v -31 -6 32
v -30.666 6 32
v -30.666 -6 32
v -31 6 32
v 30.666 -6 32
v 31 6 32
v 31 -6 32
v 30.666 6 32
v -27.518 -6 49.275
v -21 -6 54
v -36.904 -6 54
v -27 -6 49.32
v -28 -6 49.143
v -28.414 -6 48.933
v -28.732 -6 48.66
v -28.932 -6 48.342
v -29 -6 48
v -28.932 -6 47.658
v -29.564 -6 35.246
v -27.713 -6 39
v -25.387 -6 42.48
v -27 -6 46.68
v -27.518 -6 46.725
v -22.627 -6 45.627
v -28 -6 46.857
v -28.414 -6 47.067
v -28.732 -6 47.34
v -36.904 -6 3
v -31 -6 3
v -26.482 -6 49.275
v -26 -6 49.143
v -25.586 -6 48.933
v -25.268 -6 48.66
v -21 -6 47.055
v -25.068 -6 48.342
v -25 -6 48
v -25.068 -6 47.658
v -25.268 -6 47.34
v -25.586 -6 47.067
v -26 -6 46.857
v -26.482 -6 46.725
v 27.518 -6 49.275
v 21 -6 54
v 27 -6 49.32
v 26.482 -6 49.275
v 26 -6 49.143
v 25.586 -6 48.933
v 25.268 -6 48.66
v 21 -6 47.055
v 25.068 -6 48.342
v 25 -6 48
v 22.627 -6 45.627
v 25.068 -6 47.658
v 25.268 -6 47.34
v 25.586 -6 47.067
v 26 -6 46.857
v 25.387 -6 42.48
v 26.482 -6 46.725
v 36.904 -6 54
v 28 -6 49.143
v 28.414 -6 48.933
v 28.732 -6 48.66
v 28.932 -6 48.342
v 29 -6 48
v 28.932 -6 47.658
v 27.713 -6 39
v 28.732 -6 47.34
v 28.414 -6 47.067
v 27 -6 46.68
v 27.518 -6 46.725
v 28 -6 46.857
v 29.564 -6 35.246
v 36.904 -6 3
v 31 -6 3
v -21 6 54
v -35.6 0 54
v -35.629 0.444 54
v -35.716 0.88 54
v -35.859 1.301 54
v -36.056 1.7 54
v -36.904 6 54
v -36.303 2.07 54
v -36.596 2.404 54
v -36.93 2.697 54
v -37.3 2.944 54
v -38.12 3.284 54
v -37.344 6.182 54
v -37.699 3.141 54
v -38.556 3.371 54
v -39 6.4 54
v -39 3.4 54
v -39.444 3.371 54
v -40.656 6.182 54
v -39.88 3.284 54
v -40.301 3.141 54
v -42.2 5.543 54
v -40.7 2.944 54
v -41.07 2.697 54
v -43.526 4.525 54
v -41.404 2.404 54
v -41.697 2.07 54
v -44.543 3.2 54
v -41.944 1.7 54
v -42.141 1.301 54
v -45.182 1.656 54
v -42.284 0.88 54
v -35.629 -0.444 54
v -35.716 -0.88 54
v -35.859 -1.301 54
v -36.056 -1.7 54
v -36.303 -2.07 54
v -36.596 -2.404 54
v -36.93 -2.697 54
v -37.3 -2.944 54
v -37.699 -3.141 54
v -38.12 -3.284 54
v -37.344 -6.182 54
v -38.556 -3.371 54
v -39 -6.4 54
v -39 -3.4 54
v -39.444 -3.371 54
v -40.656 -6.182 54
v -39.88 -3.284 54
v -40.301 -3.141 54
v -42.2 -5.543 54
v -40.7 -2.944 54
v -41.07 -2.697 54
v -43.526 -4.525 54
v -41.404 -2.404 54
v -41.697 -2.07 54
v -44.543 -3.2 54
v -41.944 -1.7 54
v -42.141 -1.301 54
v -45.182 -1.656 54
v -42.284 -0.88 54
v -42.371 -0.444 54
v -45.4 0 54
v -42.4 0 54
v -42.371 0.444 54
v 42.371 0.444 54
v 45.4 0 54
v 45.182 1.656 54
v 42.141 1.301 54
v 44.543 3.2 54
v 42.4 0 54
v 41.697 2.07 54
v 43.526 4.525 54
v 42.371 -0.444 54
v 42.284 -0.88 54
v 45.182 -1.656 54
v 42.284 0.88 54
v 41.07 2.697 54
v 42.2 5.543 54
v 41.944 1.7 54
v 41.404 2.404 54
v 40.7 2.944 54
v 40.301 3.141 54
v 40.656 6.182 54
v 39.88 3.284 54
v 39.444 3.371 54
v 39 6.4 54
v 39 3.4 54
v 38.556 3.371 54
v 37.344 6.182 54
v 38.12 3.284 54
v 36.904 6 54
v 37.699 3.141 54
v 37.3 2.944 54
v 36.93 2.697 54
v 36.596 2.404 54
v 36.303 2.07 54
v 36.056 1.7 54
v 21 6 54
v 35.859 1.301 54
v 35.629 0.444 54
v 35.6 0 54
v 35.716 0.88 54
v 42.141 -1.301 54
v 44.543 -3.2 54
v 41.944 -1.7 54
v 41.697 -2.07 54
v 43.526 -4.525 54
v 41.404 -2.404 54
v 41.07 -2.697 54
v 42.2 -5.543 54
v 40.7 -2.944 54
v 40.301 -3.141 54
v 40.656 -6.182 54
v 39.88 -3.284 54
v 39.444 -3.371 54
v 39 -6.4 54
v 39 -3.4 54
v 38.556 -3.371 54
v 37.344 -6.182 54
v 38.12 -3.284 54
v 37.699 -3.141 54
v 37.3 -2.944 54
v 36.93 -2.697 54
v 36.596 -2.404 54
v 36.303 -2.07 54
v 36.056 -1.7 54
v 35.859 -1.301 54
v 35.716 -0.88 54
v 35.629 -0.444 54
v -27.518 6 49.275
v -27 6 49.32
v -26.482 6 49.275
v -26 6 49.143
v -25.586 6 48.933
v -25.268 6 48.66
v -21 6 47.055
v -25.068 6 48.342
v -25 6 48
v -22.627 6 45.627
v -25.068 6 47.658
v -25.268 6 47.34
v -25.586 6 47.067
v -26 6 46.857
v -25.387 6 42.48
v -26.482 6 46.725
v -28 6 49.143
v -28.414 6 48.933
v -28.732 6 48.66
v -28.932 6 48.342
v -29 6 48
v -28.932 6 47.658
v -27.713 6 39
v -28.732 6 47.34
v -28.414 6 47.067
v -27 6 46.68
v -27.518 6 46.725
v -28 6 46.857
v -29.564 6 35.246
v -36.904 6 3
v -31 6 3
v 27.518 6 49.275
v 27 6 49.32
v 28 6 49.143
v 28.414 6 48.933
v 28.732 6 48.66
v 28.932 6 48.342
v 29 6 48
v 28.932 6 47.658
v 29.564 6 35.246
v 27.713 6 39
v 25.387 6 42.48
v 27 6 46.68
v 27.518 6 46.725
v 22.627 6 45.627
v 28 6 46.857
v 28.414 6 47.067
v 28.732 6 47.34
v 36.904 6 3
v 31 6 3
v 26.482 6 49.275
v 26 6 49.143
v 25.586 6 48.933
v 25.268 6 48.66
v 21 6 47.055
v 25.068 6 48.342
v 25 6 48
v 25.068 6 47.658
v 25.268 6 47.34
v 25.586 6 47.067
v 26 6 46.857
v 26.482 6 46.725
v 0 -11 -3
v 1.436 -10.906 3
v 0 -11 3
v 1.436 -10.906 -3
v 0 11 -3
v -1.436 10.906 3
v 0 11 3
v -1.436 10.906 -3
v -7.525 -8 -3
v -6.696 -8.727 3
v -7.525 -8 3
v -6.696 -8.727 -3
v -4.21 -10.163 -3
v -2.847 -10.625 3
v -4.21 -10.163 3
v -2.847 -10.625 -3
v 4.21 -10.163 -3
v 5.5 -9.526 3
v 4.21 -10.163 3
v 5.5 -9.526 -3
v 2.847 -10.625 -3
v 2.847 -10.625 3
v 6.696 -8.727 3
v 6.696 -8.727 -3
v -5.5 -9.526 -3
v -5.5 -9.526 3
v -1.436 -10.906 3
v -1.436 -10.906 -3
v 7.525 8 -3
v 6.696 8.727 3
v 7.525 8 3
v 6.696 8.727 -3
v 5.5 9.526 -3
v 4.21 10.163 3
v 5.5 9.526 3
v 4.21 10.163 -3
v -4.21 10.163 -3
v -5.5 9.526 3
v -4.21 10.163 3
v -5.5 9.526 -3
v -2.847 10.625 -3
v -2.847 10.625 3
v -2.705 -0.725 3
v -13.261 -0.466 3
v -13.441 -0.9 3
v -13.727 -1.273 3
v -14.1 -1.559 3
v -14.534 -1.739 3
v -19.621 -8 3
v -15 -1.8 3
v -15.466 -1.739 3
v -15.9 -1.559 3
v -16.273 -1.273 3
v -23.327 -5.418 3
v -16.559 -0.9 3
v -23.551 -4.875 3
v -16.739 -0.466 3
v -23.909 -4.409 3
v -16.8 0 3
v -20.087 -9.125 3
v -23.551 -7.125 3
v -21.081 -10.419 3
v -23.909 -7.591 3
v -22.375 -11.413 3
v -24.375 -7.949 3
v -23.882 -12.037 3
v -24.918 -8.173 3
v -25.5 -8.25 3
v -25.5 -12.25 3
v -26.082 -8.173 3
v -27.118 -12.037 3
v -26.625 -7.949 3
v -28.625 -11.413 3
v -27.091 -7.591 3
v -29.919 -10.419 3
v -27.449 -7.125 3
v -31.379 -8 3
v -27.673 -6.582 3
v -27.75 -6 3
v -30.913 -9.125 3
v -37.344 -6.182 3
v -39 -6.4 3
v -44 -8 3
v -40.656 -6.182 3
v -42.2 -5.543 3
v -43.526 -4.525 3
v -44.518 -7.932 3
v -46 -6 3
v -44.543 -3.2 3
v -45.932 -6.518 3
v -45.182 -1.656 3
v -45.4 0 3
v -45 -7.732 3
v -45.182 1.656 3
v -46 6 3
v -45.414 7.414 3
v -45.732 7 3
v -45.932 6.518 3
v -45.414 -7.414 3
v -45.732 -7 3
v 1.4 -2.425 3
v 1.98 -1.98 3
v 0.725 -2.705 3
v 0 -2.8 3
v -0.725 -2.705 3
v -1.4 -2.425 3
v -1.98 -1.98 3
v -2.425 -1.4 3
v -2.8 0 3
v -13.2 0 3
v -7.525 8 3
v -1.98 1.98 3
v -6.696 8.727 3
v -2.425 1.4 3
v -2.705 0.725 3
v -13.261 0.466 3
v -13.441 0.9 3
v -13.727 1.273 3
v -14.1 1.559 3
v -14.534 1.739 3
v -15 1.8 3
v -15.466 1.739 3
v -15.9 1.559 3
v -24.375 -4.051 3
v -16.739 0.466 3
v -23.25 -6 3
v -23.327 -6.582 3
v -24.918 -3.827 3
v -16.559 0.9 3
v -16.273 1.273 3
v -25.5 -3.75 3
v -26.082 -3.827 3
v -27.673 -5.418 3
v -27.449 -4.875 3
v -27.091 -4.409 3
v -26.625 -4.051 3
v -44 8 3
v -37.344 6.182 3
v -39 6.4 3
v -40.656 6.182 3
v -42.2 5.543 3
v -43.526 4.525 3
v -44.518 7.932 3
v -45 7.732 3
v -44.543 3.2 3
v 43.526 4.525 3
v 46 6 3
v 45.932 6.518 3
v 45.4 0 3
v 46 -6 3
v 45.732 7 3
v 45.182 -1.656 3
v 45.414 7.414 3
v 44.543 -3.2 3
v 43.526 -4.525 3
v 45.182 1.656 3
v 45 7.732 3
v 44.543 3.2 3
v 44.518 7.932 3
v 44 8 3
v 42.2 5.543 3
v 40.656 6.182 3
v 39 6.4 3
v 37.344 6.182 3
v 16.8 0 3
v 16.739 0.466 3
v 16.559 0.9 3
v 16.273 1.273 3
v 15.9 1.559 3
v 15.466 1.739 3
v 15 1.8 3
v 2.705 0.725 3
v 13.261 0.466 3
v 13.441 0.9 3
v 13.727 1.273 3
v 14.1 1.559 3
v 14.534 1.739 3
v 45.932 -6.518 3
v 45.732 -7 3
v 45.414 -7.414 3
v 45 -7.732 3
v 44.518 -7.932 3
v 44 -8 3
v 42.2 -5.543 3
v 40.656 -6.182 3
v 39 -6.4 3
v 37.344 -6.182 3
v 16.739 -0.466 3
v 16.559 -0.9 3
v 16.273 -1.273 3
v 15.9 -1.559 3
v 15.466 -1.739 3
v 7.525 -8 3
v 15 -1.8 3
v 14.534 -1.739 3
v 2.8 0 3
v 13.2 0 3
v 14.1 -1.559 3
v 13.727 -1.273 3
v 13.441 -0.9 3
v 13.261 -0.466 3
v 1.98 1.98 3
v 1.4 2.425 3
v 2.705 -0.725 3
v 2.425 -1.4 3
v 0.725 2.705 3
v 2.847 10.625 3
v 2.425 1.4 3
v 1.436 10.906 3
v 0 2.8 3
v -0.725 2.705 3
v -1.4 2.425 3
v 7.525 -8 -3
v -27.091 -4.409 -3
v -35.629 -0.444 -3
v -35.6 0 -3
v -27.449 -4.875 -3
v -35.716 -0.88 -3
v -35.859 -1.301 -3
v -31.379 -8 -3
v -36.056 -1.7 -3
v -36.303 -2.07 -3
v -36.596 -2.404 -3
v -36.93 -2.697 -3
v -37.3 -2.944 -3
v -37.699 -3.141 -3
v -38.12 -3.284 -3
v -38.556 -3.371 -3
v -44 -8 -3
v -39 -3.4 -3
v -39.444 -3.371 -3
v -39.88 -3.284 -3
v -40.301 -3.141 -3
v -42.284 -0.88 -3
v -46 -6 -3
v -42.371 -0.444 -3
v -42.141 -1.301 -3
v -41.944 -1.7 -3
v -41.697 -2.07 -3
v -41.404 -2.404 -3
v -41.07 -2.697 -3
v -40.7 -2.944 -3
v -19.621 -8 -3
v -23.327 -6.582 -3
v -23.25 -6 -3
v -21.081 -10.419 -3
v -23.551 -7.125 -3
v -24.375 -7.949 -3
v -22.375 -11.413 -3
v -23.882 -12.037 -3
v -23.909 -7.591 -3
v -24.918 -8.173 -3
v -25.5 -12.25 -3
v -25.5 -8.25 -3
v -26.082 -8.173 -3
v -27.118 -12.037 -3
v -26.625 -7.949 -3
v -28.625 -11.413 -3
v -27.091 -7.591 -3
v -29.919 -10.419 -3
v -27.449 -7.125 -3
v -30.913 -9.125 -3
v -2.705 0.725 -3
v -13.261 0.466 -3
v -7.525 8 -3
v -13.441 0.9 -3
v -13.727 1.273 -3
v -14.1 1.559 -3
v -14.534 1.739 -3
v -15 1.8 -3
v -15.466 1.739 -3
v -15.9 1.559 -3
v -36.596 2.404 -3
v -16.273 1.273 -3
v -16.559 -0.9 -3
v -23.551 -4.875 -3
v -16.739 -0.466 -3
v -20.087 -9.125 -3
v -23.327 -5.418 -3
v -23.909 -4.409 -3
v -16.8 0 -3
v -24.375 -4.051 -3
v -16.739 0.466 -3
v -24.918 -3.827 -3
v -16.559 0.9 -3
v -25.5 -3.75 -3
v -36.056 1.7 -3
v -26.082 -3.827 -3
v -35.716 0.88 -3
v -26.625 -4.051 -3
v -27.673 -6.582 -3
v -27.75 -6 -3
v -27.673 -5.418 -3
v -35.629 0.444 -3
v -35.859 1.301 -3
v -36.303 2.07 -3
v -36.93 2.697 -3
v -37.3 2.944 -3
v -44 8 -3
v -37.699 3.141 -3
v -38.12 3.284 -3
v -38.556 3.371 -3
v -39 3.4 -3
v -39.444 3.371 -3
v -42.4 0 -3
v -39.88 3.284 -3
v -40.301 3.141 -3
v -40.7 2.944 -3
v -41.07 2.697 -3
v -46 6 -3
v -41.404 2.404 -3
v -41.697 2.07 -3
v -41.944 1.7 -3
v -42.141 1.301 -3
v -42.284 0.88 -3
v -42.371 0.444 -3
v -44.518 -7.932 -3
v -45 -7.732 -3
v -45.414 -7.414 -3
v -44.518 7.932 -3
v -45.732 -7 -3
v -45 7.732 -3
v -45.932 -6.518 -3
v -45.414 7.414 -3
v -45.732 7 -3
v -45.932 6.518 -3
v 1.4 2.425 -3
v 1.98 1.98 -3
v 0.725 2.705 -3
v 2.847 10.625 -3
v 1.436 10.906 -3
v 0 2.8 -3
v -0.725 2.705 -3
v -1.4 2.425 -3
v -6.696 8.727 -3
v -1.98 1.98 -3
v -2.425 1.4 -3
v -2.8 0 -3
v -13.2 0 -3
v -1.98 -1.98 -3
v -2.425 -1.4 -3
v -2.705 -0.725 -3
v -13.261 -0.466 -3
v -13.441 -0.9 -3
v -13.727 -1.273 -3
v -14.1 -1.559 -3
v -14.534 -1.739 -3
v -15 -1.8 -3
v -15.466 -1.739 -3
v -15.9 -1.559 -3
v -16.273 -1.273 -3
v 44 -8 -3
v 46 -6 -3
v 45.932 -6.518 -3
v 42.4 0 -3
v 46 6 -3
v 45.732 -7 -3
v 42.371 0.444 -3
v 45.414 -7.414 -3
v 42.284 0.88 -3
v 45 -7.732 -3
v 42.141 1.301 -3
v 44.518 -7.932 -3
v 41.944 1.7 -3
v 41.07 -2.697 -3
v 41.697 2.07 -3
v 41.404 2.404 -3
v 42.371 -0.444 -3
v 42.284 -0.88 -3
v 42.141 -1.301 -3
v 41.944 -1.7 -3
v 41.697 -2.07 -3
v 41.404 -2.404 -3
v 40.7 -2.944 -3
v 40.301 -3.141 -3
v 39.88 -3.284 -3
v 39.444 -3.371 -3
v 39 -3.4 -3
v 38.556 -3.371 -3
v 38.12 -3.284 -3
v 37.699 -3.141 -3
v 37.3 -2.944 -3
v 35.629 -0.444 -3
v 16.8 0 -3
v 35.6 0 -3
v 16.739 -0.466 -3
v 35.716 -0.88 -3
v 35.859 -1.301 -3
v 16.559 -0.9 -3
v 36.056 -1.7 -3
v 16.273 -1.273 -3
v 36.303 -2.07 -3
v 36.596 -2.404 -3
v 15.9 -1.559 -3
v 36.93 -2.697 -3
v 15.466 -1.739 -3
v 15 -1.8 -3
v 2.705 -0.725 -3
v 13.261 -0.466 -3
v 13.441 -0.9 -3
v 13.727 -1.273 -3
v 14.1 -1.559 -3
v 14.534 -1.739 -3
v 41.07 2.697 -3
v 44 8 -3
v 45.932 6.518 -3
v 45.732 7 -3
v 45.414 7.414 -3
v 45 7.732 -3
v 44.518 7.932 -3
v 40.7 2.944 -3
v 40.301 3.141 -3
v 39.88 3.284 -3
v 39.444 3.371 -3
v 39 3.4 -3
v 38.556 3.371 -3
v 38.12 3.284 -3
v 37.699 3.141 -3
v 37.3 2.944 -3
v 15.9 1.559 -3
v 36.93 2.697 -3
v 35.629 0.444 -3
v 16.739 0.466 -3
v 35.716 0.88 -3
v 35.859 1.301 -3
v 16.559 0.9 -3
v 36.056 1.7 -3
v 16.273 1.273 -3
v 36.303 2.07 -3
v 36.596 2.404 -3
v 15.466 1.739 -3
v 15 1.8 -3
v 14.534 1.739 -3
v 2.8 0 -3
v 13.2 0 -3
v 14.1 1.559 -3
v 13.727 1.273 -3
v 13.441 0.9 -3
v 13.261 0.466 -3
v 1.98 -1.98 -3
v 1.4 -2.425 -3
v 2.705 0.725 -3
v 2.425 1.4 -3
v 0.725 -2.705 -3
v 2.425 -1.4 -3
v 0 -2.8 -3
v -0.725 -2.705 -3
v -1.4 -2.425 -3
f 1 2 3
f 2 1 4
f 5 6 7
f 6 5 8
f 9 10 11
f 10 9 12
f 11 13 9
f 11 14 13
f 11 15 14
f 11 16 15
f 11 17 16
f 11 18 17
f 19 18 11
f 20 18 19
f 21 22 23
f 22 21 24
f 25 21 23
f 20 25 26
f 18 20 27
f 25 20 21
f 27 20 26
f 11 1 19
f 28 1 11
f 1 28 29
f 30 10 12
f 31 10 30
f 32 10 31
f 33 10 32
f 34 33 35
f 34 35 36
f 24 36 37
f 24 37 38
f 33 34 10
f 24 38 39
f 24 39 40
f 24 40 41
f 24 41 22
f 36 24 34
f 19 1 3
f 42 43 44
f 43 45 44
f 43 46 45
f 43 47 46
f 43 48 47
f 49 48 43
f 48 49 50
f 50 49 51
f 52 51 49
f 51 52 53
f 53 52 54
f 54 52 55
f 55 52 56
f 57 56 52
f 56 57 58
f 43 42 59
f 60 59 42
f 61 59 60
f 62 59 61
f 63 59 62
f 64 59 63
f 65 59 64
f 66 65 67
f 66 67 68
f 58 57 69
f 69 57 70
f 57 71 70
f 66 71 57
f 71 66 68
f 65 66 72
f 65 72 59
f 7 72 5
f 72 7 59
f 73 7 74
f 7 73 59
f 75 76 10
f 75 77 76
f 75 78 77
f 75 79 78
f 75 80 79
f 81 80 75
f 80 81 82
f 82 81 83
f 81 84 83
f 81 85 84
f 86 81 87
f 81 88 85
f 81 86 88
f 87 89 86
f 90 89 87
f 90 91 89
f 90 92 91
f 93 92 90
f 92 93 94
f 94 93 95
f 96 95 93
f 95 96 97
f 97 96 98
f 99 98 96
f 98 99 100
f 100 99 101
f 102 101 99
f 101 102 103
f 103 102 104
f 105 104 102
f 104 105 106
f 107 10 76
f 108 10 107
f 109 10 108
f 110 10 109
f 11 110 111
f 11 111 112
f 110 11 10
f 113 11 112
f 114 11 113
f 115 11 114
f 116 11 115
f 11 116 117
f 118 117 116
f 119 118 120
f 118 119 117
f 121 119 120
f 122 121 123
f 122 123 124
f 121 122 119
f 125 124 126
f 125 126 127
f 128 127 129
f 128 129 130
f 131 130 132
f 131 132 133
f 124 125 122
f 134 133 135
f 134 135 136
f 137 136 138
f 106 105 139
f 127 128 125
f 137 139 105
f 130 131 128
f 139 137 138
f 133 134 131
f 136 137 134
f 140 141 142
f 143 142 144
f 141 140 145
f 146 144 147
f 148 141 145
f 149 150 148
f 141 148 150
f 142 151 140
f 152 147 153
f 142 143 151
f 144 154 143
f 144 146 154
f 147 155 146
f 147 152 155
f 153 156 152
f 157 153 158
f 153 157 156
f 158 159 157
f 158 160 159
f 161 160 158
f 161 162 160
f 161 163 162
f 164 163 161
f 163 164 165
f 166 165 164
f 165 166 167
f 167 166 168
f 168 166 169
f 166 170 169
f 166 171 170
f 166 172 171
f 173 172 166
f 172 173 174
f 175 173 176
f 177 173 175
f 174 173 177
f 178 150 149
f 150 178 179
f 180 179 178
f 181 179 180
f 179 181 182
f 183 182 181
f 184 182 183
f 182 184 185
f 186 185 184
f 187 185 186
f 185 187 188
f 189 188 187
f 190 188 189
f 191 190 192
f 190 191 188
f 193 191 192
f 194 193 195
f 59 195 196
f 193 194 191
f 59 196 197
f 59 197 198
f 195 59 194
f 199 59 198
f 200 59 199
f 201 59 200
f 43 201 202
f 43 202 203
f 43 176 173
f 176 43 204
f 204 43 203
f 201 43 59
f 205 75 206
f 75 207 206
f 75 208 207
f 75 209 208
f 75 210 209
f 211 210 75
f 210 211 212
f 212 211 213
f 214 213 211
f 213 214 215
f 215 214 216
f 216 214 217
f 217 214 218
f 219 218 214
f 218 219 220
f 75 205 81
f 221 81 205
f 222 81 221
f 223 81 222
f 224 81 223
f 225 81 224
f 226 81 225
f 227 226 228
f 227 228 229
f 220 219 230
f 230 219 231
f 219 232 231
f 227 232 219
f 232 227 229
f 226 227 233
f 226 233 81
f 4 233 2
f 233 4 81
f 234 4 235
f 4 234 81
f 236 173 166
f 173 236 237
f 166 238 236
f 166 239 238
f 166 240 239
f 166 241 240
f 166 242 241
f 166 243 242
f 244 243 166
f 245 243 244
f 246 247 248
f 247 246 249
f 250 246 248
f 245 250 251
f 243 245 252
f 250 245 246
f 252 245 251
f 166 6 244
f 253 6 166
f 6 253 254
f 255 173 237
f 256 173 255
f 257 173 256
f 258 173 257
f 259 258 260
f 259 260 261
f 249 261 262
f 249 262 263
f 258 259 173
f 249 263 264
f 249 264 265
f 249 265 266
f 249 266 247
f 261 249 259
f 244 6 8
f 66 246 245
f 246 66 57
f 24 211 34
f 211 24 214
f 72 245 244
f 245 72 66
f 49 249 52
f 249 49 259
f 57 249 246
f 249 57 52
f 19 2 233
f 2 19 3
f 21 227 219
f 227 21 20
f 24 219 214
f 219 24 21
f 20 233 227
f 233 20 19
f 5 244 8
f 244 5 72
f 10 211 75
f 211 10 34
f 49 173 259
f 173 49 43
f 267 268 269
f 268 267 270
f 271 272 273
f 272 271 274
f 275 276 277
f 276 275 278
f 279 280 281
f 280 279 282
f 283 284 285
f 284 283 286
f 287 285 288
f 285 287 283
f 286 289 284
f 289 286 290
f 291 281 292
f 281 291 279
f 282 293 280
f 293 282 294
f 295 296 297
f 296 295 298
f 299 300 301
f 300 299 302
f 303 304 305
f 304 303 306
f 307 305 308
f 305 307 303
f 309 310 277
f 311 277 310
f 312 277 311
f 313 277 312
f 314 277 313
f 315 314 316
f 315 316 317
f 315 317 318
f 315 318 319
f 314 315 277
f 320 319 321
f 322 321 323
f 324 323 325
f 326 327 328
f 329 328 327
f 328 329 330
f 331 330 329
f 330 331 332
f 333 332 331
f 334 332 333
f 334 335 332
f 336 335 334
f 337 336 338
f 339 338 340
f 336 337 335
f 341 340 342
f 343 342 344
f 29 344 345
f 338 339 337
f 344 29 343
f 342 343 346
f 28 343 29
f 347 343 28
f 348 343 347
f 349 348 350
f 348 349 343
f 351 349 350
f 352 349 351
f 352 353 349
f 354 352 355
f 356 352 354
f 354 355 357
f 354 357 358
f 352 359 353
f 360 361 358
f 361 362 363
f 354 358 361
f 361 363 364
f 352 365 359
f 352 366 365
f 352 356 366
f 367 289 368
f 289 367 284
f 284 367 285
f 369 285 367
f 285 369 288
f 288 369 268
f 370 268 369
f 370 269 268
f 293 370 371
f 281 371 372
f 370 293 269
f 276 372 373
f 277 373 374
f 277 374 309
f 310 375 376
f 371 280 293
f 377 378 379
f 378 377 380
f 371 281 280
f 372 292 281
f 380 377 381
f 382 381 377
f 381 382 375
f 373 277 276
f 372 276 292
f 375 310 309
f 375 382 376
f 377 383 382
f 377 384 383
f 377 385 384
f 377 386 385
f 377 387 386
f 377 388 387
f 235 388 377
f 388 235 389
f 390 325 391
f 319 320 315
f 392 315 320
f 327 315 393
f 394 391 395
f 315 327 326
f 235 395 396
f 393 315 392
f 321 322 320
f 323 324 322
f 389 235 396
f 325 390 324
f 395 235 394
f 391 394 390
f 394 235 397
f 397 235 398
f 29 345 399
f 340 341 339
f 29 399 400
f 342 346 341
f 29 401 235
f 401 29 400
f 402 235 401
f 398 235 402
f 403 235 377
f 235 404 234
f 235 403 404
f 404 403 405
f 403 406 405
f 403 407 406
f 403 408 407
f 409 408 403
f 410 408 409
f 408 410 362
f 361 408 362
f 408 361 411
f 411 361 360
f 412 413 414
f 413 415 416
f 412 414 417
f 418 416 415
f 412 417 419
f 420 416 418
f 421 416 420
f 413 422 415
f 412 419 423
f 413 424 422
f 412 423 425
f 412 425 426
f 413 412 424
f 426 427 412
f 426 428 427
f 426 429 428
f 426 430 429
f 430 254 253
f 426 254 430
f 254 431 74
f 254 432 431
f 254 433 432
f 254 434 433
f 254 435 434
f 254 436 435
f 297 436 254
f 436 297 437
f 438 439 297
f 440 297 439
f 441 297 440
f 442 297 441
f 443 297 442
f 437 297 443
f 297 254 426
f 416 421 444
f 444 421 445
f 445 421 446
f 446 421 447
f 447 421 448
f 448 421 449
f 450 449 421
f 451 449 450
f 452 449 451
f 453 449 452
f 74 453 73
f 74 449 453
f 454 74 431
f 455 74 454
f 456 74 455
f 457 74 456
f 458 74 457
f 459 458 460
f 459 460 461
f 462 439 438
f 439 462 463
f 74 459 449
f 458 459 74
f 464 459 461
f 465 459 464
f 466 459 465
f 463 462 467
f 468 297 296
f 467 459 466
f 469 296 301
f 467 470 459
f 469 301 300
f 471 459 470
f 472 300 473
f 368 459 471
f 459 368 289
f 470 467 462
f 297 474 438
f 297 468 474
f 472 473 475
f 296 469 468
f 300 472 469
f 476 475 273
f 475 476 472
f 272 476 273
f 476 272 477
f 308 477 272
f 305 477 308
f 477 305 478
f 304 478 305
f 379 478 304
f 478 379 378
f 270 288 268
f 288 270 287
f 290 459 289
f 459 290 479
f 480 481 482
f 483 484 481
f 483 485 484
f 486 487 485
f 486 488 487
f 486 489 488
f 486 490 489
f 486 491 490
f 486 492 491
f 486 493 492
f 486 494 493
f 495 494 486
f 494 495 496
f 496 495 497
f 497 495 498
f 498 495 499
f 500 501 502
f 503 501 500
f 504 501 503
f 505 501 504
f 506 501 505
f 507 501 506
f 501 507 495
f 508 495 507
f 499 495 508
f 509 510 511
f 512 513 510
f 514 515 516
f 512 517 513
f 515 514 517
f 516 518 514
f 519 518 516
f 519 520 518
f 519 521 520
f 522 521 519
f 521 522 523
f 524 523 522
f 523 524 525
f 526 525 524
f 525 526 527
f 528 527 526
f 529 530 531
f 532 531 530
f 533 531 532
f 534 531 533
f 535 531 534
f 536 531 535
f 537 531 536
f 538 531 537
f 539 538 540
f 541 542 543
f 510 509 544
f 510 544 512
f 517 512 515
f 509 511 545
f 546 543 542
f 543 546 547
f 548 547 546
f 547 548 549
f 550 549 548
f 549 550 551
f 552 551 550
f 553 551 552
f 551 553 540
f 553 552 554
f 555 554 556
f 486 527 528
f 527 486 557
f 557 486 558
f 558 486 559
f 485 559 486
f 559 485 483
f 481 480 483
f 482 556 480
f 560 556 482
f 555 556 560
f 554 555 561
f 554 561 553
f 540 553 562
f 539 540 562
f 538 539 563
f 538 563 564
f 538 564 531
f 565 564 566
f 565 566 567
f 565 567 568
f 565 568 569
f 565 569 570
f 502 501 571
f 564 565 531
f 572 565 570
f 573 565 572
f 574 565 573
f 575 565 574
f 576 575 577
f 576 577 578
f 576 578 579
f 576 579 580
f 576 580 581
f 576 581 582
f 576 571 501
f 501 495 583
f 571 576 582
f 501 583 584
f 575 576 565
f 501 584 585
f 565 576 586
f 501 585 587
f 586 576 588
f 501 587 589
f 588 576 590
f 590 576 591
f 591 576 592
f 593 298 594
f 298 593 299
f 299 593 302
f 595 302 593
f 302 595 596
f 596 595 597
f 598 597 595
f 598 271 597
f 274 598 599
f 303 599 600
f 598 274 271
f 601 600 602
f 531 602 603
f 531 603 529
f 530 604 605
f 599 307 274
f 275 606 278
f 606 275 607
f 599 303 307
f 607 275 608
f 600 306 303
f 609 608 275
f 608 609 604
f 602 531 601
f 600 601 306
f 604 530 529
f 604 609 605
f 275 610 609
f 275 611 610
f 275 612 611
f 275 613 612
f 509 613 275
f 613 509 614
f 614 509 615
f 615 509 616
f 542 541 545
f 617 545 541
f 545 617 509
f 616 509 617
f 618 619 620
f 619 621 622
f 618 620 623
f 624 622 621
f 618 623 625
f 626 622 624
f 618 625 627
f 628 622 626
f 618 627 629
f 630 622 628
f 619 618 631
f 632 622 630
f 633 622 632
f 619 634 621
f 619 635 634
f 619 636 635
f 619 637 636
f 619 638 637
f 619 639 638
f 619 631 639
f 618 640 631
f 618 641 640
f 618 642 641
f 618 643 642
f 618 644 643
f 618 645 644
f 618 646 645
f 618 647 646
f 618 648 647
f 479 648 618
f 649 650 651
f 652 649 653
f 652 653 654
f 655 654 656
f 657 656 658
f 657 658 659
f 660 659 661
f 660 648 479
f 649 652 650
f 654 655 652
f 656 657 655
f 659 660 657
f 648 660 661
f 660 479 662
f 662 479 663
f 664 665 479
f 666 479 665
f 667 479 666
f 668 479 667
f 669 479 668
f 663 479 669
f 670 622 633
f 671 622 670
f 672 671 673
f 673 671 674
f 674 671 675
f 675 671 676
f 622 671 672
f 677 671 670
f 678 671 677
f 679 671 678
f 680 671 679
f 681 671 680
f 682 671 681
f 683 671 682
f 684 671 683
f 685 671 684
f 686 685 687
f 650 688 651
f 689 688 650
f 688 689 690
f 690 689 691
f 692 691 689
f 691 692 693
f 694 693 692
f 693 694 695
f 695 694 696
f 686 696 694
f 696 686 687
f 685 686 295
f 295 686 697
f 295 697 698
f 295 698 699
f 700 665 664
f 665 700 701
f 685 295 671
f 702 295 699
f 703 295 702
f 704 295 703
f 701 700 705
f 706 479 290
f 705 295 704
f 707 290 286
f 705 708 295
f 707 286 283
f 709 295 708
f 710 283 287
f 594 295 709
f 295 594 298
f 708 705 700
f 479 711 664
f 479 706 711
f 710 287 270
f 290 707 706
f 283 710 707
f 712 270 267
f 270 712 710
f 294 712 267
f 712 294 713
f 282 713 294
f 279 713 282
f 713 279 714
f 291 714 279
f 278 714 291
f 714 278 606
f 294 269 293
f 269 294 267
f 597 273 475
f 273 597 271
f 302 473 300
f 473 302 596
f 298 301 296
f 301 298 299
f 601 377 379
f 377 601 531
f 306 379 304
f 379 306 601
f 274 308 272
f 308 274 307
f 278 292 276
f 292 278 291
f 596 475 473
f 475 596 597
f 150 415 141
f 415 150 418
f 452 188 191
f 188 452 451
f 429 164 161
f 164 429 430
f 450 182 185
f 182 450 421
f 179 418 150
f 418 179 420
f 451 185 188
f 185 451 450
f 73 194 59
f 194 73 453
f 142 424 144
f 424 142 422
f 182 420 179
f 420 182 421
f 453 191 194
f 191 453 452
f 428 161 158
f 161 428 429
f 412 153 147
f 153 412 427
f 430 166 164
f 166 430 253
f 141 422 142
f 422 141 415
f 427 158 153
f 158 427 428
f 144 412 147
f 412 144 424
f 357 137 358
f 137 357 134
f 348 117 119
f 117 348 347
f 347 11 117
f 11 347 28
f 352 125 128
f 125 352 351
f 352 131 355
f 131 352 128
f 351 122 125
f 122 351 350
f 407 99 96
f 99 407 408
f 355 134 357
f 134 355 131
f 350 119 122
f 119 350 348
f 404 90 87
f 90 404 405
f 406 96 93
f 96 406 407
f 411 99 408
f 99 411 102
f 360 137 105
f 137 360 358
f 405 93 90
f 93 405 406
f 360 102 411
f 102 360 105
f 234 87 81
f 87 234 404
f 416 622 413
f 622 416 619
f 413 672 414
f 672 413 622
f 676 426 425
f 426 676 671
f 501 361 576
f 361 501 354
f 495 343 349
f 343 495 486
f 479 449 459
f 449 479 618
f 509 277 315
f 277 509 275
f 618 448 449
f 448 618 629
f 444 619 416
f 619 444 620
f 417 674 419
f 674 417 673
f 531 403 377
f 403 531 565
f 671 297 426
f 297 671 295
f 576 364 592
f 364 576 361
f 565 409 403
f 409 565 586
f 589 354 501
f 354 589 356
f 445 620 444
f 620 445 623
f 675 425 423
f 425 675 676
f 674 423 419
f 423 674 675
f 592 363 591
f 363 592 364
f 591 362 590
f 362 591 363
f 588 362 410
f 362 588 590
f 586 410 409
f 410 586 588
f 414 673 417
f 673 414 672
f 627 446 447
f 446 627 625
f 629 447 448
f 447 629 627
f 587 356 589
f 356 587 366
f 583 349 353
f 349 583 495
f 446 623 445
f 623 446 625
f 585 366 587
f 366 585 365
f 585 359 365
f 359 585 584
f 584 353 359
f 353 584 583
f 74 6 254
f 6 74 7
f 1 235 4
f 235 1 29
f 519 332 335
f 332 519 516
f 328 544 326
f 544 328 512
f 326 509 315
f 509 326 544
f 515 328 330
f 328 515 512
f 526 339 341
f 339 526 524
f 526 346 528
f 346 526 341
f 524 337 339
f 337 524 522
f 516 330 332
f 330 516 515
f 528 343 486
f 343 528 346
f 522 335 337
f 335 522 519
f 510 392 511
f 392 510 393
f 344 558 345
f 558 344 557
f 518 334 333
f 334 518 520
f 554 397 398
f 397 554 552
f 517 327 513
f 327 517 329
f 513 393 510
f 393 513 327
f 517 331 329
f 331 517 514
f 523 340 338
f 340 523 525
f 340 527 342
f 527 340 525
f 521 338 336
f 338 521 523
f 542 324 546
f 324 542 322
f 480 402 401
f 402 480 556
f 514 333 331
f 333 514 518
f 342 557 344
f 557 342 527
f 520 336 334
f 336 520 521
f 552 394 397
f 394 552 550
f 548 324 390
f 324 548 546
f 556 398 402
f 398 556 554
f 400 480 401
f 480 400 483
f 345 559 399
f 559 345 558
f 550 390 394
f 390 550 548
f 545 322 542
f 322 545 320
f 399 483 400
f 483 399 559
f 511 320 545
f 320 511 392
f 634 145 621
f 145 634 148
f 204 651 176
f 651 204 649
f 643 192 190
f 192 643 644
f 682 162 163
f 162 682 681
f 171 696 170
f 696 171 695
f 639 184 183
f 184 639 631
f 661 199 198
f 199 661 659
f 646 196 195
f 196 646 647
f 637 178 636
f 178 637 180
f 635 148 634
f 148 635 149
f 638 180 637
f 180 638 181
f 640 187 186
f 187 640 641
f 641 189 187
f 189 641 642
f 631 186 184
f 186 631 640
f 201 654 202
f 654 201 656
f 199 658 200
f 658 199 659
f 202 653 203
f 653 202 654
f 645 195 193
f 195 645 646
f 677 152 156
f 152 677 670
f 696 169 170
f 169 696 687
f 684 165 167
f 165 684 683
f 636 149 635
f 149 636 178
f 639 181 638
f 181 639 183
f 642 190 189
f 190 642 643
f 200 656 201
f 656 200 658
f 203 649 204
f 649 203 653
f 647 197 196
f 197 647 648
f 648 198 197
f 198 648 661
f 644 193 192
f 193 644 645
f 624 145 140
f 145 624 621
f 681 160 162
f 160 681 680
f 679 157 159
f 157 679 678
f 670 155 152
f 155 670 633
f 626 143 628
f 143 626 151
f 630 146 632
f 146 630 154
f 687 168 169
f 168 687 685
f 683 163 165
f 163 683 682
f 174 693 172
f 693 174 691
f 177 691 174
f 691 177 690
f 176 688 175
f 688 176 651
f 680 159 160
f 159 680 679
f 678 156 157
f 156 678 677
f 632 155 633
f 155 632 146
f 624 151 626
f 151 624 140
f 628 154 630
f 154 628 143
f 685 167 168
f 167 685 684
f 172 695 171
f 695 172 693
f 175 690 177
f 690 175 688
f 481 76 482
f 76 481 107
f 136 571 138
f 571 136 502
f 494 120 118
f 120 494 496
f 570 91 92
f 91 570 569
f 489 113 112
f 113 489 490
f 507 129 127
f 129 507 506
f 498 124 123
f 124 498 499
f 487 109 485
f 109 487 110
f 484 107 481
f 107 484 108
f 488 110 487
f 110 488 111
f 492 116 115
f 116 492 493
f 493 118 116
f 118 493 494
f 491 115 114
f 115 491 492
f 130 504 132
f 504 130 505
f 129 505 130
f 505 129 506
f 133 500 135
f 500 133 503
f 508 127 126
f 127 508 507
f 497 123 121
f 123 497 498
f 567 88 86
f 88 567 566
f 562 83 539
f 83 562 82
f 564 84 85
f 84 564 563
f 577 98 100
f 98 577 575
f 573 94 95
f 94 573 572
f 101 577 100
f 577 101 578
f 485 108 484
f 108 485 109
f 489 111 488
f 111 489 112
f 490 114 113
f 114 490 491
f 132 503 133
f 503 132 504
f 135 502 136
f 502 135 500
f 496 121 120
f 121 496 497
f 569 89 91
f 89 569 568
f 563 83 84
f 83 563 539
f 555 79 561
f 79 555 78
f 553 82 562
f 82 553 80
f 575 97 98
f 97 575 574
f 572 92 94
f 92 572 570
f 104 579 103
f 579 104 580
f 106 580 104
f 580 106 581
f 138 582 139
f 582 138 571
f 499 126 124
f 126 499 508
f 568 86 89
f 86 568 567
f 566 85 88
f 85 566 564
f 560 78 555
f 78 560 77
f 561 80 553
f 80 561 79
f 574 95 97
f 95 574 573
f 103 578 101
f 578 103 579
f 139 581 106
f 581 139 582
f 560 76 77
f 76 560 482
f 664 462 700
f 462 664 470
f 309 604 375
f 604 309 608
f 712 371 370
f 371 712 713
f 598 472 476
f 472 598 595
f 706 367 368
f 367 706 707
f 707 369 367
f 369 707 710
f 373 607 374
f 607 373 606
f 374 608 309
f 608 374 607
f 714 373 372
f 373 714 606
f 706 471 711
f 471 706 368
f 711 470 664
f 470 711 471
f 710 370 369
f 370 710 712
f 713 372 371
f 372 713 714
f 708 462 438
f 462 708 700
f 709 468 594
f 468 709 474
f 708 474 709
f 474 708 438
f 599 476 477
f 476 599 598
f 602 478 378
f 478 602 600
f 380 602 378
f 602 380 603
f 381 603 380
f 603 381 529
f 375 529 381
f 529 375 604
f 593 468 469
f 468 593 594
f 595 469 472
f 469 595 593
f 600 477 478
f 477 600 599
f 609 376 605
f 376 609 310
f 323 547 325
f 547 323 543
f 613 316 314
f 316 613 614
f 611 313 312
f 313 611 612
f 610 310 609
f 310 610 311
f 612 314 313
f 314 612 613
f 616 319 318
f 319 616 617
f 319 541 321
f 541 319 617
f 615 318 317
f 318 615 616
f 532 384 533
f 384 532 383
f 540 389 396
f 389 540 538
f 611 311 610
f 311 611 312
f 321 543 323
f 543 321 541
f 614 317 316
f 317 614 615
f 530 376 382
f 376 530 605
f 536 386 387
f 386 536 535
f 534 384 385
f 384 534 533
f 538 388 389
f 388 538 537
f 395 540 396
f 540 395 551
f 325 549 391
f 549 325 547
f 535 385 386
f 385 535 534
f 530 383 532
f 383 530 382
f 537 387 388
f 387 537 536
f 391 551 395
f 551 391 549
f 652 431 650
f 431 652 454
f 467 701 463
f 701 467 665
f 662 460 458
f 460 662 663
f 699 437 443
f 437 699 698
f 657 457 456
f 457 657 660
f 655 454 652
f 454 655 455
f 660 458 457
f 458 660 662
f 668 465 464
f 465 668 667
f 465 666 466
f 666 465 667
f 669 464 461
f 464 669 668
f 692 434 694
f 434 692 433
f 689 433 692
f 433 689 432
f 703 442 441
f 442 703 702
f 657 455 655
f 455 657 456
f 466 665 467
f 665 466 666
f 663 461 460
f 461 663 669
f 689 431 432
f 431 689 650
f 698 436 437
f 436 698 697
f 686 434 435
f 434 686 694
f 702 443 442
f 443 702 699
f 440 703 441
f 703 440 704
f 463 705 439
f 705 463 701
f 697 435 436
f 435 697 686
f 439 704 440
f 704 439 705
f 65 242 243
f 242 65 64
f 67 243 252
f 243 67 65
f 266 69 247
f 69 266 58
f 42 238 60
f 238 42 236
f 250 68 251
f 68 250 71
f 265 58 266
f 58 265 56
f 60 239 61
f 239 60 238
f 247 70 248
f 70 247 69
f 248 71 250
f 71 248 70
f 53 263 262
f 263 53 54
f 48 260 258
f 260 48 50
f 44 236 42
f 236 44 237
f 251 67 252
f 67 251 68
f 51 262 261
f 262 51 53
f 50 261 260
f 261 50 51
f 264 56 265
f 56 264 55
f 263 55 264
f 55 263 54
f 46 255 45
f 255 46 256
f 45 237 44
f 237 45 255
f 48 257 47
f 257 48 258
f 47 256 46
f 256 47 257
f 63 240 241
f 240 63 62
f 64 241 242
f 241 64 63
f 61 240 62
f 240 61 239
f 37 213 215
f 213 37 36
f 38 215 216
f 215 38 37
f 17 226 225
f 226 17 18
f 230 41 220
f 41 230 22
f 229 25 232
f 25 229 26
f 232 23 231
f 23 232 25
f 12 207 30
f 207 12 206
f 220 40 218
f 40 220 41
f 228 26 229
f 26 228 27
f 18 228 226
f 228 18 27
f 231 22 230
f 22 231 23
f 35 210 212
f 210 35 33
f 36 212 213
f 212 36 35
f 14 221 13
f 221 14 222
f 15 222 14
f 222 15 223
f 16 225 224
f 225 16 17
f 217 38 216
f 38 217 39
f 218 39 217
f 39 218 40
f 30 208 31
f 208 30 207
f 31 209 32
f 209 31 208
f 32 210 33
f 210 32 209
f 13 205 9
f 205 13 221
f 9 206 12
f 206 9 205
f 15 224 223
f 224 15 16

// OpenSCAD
// 25 6 2018

   DiaM3 = 3.6;      // fix together   
   DiaTye=4;         // belt tying
   DiaM4=4.5;         // push the Z switch
   DiaM5 = 5.6 ;     // M5 linear shafts and M5 threaded M5 push bar   
   DiaM6=6.8;
   
   DiameterMaxAcme=28;  //
   DiameterBusAcme=10.5; // 
   
   // no need to rotate in slic3r :
   
    rotate([180,0,0]) 
    {
    
difference()
{
    
union()
    {        
        // pass M5 screw:
        
  cylinder(h=6,d=22,center=true,$fn=48);        
                
 translate([39.0,0,-26])
    cylinder(h=56,d=DiaM6+6,center=true,$fn=24);   

  translate([-39,0,-26])
    cylinder(h=56,d=DiaM6+6,center=true,$fn=24);     
 
     
minkowski()
{     
    
cube([88,12,5],center=true);        
cylinder(h=1,d=4,center=true,$fn=24);    
}

translate([35.0,0,-21]) //-35
cube([8,12,46],center=true);

translate([-35.0,0,-21])
cube([8,12,46],center=true);

// downwards, for fixing to pen holder

difference()
{
translate([0,0,-43])  //-62
cube([74,12,22],center=true);

translate([0,0,-23])  // -54
    rotate([90,0,0])
cylinder(h=18,d=64,center=true,$fn=48); 

translate([0,0,-44])  //-62
cube([42,14,22],center=true);


}

         
// push the Z switch 

 translate([-25.5,6,0])
    cylinder(h=6,d=DiaM4+8,center=true,$fn=24);  



}   // end union



// push the Z switch 

 translate([-25.5,6,0])
    cylinder(h=12,d=DiaM4,center=true,$fn=24);   





// M6 shafts 

 translate([39.0,0,-35])
    cylinder(h=80,d=DiaM6,center=true,$fn=48);   

  translate([-39,0,-35])
    cylinder(h=80,d=DiaM6,center=true,$fn=48);      
  
  
  // bus acme shaft
     cylinder(h=12,d=DiaM5,center=true,$fn=24);   // for ml syringe


          
   // FIX BOTH PARTS TOGETHER WITH M3
       
       translate([-15,0,0])
    cylinder(h=16,d=DiaM3,center=true,$fn=24);      
 
     translate([15,0,0])
    cylinder(h=16,d=DiaM3,center=true,$fn=24);    
 


//  pass syringe and M5

  translate([0,0,-48])
      cube([25,12,20],center=true);//24
 
 
 
//  tying, fix on syringe holder :

  translate([27.0,0,-48])     //
  rotate([90,0,0]) 
   scale([1,0.66,1])
  cylinder(h=25 ,d=DiaTye,center=true,$fn=24);  // 
   
  translate([-27,0,-48])     //
  rotate([90,0,0])
   scale([1,0.66,1])
  cylinder(h=25 ,d=DiaTye,center=true,$fn=24);  // 

 
 
 
// Demo frontal section displays M5 nut holder
/*
  translate([0,10,0])
      cube([80,20,100],center=true);//24
 */
 
 
      
}

}
